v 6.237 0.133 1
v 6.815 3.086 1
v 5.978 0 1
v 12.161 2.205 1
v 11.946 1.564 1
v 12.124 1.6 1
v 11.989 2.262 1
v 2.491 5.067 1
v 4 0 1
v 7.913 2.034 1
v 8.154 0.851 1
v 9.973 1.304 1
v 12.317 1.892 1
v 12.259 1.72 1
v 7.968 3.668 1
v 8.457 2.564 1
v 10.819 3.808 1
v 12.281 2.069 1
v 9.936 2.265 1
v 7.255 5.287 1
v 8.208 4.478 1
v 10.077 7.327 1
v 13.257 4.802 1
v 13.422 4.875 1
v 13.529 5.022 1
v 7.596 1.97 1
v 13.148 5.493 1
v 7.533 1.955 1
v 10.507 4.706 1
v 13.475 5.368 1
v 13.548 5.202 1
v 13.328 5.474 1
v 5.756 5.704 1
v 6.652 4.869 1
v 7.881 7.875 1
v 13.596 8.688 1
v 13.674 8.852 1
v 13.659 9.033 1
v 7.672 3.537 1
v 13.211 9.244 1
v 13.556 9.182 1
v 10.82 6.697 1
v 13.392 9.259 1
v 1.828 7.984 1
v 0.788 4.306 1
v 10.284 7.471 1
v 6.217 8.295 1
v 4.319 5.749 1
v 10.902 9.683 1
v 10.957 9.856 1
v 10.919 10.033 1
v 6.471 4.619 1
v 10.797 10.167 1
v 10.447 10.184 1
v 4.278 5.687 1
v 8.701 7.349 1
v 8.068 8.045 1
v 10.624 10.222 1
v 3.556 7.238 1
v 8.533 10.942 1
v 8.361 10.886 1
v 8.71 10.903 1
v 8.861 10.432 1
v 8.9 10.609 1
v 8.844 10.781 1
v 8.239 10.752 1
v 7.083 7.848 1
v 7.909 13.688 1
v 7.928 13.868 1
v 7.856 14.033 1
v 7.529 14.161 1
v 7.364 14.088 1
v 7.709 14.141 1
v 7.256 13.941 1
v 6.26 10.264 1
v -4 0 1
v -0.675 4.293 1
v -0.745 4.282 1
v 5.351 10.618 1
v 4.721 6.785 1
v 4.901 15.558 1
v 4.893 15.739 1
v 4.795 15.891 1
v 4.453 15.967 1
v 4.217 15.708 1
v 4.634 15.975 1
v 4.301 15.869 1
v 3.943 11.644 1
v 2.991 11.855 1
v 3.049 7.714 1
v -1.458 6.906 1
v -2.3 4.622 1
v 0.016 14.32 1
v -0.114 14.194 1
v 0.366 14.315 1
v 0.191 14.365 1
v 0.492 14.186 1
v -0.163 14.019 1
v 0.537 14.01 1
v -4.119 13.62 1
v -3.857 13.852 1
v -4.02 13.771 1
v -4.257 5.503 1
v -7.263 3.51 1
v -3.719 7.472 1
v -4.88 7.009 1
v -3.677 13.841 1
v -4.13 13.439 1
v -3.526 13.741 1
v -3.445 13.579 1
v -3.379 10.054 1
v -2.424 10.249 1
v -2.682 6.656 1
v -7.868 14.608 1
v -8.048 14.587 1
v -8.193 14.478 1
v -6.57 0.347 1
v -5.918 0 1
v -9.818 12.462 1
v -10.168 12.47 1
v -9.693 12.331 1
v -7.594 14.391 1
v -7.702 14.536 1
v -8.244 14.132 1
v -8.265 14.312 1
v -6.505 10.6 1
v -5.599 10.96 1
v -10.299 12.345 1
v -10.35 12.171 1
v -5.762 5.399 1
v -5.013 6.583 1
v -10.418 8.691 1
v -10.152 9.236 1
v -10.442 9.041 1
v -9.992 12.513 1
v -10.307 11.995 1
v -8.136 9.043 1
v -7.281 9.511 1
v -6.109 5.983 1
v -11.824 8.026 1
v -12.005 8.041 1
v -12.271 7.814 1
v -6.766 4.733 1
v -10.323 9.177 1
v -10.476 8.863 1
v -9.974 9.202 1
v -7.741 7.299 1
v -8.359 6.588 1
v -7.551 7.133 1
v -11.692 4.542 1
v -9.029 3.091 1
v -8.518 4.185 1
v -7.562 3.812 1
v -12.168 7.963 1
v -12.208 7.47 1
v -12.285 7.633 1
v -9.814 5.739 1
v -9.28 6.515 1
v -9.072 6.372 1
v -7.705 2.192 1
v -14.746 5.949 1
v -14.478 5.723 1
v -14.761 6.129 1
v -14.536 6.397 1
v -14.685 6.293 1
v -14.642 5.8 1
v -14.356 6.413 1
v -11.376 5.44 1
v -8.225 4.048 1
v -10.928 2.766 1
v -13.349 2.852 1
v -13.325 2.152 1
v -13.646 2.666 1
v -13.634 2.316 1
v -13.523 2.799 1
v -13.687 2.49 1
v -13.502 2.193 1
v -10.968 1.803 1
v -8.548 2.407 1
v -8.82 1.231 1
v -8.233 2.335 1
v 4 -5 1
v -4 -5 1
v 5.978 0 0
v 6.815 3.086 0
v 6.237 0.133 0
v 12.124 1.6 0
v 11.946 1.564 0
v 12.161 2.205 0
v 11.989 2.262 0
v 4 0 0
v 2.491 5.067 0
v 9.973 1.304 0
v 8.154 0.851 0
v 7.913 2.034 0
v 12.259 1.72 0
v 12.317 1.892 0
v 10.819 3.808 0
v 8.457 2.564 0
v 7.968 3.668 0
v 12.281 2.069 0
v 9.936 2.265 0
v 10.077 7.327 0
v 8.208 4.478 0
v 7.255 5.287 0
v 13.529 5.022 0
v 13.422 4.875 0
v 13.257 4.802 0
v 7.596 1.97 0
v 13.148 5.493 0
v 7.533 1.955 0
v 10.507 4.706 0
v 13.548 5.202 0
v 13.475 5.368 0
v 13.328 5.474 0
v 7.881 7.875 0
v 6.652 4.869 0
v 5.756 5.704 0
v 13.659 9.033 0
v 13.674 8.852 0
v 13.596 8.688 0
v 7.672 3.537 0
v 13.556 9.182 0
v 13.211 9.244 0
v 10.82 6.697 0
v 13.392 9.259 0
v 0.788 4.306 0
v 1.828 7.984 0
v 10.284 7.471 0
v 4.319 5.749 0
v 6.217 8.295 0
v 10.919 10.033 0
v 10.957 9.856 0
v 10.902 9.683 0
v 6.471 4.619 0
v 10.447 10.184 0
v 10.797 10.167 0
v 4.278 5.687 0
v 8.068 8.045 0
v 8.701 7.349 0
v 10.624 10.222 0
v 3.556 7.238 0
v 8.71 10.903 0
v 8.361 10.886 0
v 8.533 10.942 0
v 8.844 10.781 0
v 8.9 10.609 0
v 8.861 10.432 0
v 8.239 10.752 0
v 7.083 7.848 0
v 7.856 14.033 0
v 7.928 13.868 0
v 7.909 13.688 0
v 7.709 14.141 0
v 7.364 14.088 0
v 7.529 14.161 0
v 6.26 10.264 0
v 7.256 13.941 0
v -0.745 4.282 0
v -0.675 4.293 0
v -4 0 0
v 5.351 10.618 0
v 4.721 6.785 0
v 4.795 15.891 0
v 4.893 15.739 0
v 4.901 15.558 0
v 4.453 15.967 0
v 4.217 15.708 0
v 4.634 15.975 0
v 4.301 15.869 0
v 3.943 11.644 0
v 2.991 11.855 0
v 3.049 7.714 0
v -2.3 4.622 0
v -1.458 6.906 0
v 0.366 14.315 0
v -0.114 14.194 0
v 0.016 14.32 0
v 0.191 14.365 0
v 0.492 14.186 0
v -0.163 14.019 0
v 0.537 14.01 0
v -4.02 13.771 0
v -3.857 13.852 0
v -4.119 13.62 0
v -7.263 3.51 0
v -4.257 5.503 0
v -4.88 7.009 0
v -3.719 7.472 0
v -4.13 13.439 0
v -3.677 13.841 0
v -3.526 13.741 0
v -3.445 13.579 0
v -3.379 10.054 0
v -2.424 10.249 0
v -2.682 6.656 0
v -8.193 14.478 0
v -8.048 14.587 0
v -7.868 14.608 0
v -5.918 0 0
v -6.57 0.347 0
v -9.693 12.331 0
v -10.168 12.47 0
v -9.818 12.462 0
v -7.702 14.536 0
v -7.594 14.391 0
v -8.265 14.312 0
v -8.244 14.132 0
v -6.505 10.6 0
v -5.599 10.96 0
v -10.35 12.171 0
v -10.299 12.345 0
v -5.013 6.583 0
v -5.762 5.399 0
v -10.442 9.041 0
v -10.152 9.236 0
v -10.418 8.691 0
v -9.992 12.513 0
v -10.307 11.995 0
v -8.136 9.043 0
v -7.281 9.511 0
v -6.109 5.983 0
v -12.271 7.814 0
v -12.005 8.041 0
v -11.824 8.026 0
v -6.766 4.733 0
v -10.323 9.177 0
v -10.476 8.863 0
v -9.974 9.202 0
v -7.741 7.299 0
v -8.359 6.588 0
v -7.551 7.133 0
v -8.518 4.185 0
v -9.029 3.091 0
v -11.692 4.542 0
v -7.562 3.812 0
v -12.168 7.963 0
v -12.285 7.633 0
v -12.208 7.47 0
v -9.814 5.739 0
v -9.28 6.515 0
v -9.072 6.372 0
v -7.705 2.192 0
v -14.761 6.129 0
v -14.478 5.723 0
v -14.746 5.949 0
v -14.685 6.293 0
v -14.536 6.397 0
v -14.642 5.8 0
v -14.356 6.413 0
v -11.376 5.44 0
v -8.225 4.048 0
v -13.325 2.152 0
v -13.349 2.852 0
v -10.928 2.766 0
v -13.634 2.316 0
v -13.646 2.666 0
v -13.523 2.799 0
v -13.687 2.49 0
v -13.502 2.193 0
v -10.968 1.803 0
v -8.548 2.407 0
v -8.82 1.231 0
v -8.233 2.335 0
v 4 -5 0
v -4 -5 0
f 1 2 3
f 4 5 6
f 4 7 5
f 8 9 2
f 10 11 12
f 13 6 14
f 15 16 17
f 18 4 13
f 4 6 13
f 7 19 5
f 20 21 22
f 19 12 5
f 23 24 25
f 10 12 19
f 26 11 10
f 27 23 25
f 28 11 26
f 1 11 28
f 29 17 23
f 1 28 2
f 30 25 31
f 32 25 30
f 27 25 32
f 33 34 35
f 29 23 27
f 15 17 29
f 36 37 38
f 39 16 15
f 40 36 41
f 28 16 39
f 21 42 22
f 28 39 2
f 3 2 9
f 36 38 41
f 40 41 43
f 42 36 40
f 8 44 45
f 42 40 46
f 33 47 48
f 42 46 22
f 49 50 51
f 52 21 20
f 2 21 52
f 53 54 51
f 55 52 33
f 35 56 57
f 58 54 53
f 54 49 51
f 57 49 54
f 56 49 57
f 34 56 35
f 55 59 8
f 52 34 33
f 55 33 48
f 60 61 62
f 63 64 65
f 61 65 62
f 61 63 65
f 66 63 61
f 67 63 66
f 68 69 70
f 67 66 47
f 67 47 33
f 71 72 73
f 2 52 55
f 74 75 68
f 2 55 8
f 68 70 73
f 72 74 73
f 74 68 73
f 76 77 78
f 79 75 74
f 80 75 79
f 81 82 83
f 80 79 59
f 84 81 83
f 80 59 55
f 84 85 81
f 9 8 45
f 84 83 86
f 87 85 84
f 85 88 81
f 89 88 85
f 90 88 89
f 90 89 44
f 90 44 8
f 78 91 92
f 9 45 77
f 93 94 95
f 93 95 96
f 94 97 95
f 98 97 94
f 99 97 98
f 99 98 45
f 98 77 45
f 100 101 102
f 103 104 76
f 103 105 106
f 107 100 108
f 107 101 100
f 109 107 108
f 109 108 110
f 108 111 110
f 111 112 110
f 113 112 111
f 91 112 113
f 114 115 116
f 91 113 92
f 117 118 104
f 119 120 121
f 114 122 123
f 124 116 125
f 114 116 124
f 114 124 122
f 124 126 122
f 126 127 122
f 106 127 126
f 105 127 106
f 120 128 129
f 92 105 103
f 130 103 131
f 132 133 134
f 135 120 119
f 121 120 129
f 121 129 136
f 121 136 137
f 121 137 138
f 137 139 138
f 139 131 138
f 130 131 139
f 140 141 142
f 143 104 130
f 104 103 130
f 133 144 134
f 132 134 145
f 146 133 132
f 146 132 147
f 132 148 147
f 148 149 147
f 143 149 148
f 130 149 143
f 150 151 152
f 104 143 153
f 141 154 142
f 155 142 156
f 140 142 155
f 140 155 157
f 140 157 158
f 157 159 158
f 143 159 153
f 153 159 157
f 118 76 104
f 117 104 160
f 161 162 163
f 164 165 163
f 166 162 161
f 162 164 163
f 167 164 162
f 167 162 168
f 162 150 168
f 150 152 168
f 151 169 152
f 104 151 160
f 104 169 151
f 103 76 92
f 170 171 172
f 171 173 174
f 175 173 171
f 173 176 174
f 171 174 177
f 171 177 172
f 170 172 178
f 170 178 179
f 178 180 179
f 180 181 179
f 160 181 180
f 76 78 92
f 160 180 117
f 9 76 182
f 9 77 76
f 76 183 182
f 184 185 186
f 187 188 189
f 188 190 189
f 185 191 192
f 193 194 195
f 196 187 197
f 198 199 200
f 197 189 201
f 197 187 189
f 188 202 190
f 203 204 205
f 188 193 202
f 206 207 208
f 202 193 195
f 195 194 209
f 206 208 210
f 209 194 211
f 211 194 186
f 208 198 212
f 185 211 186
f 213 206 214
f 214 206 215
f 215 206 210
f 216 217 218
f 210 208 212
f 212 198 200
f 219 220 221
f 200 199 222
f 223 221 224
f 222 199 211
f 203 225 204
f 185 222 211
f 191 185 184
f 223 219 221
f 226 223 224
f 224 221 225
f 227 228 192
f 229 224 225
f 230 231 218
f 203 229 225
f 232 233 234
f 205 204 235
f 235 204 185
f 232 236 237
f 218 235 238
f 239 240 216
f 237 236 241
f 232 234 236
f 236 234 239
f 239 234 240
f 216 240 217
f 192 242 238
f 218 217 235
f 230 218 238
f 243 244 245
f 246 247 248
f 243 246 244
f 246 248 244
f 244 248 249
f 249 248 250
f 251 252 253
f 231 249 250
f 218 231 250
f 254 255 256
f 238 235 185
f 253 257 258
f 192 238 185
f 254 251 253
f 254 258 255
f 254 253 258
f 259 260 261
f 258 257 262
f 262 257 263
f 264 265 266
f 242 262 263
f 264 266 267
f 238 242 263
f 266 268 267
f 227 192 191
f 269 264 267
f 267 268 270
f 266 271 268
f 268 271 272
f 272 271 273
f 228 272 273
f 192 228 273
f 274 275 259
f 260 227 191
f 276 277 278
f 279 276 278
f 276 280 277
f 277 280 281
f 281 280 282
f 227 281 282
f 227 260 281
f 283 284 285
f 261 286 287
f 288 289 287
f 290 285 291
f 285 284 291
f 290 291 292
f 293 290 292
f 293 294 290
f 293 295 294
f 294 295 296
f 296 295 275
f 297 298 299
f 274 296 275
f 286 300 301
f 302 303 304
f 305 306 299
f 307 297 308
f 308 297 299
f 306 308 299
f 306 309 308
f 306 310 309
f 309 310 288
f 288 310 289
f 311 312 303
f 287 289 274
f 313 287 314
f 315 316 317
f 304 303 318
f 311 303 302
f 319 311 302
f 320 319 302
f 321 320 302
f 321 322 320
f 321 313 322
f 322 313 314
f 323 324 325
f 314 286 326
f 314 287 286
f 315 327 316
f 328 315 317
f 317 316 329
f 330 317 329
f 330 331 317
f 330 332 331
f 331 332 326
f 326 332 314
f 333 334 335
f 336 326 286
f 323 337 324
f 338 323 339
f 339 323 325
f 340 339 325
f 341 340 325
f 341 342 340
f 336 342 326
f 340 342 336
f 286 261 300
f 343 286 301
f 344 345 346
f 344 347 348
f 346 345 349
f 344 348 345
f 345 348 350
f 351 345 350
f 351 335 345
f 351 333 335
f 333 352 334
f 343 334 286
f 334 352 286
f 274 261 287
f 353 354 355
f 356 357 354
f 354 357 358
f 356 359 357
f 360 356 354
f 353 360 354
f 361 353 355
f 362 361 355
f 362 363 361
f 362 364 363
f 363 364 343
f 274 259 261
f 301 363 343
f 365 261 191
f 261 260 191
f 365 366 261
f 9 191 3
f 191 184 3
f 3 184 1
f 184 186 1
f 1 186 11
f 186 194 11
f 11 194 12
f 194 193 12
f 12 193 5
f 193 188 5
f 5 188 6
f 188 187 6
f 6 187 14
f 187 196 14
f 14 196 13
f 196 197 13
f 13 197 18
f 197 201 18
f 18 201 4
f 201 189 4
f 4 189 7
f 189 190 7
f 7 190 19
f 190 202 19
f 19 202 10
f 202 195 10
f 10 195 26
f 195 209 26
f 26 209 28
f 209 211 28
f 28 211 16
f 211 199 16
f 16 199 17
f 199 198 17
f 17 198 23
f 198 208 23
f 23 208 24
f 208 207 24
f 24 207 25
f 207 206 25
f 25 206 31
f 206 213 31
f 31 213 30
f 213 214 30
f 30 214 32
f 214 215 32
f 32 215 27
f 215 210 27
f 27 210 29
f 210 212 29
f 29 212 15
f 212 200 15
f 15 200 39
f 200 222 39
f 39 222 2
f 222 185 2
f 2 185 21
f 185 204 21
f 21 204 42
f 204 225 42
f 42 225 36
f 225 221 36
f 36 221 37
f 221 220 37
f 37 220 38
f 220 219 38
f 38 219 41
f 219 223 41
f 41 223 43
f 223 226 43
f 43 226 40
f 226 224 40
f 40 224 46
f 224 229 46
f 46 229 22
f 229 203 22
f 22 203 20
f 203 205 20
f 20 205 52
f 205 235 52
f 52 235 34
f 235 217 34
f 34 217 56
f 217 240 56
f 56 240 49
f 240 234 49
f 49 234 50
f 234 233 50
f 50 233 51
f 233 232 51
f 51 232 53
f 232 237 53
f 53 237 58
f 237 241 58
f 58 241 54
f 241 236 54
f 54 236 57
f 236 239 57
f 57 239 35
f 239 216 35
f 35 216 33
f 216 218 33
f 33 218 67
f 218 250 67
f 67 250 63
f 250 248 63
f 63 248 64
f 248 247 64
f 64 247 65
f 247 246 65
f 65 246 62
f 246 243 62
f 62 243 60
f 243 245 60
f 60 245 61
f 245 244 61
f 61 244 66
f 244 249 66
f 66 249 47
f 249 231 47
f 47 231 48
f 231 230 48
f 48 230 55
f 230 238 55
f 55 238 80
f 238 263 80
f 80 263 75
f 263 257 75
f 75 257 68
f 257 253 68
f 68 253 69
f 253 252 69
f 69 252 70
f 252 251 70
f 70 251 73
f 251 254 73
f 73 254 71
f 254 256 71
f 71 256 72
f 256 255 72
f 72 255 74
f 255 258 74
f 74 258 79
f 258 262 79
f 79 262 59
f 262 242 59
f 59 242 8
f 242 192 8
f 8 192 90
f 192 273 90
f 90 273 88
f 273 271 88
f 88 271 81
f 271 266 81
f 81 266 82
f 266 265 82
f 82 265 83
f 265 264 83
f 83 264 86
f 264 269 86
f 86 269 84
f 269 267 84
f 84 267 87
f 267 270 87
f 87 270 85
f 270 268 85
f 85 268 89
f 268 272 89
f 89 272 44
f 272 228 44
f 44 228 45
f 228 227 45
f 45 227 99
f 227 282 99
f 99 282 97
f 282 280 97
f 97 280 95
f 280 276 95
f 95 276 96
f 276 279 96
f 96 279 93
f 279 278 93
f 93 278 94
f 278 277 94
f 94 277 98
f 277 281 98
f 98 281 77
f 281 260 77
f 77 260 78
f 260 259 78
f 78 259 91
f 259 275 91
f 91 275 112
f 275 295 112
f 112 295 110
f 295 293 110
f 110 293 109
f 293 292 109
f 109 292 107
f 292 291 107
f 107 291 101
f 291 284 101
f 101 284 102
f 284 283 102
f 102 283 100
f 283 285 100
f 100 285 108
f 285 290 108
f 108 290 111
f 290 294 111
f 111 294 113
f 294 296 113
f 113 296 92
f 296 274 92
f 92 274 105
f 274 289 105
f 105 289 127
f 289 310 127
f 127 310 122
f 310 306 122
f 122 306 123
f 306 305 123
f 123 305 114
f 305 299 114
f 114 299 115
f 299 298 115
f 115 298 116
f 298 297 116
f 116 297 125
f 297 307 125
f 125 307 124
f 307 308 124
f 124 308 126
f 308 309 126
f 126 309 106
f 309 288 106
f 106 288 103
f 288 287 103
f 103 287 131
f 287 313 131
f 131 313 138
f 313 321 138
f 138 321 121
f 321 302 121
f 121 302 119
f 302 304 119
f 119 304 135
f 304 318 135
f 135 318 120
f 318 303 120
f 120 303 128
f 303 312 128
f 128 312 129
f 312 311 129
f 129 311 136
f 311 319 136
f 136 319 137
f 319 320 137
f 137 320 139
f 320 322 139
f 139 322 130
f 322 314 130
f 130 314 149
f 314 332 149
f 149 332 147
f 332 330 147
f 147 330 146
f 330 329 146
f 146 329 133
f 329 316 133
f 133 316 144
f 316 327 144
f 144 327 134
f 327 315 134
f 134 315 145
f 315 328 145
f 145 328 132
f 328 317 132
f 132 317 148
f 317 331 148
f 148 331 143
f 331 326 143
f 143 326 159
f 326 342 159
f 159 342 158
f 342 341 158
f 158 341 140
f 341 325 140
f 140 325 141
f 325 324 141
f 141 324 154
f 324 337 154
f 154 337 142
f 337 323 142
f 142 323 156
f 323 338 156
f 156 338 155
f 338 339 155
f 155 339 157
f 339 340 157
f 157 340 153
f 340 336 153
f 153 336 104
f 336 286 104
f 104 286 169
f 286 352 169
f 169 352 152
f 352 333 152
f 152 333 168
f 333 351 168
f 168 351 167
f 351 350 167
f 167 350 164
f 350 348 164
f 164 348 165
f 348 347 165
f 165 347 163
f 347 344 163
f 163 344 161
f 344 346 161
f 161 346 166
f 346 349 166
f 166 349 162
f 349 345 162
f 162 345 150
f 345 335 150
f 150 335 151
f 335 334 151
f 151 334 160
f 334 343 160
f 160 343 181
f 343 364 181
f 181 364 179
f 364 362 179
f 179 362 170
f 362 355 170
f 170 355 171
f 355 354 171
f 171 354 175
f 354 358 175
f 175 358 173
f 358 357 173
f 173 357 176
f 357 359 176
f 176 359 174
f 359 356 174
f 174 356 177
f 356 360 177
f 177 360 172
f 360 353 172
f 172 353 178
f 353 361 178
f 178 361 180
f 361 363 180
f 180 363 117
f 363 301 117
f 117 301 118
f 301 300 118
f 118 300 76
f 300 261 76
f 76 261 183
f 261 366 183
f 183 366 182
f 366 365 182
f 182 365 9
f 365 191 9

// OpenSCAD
// Plant_Leaves_02.stl  -  Store Versile room frame (Rev C)
// Quantity: 1   Filament: Leaf green (e.g. PLA Matte Grass Green)
// Print: layer 0.12 mm, infill 100%, 2 walls, brim 0 mm, NO supports
// Orientation: back  (lying on its back, front face up)
// Notes: Flat, 1.0 mm.
// The library draws parts with their front toward +Y; mirror([0,1,0]) makes the real
// part face the viewer correctly (see build.py). Edit dimensions in versile_parts.scad.
use <../versile_parts.scad>

rotate([-90, 0, 0]) mirror([0, 1, 0]) plant_leaves_02();
